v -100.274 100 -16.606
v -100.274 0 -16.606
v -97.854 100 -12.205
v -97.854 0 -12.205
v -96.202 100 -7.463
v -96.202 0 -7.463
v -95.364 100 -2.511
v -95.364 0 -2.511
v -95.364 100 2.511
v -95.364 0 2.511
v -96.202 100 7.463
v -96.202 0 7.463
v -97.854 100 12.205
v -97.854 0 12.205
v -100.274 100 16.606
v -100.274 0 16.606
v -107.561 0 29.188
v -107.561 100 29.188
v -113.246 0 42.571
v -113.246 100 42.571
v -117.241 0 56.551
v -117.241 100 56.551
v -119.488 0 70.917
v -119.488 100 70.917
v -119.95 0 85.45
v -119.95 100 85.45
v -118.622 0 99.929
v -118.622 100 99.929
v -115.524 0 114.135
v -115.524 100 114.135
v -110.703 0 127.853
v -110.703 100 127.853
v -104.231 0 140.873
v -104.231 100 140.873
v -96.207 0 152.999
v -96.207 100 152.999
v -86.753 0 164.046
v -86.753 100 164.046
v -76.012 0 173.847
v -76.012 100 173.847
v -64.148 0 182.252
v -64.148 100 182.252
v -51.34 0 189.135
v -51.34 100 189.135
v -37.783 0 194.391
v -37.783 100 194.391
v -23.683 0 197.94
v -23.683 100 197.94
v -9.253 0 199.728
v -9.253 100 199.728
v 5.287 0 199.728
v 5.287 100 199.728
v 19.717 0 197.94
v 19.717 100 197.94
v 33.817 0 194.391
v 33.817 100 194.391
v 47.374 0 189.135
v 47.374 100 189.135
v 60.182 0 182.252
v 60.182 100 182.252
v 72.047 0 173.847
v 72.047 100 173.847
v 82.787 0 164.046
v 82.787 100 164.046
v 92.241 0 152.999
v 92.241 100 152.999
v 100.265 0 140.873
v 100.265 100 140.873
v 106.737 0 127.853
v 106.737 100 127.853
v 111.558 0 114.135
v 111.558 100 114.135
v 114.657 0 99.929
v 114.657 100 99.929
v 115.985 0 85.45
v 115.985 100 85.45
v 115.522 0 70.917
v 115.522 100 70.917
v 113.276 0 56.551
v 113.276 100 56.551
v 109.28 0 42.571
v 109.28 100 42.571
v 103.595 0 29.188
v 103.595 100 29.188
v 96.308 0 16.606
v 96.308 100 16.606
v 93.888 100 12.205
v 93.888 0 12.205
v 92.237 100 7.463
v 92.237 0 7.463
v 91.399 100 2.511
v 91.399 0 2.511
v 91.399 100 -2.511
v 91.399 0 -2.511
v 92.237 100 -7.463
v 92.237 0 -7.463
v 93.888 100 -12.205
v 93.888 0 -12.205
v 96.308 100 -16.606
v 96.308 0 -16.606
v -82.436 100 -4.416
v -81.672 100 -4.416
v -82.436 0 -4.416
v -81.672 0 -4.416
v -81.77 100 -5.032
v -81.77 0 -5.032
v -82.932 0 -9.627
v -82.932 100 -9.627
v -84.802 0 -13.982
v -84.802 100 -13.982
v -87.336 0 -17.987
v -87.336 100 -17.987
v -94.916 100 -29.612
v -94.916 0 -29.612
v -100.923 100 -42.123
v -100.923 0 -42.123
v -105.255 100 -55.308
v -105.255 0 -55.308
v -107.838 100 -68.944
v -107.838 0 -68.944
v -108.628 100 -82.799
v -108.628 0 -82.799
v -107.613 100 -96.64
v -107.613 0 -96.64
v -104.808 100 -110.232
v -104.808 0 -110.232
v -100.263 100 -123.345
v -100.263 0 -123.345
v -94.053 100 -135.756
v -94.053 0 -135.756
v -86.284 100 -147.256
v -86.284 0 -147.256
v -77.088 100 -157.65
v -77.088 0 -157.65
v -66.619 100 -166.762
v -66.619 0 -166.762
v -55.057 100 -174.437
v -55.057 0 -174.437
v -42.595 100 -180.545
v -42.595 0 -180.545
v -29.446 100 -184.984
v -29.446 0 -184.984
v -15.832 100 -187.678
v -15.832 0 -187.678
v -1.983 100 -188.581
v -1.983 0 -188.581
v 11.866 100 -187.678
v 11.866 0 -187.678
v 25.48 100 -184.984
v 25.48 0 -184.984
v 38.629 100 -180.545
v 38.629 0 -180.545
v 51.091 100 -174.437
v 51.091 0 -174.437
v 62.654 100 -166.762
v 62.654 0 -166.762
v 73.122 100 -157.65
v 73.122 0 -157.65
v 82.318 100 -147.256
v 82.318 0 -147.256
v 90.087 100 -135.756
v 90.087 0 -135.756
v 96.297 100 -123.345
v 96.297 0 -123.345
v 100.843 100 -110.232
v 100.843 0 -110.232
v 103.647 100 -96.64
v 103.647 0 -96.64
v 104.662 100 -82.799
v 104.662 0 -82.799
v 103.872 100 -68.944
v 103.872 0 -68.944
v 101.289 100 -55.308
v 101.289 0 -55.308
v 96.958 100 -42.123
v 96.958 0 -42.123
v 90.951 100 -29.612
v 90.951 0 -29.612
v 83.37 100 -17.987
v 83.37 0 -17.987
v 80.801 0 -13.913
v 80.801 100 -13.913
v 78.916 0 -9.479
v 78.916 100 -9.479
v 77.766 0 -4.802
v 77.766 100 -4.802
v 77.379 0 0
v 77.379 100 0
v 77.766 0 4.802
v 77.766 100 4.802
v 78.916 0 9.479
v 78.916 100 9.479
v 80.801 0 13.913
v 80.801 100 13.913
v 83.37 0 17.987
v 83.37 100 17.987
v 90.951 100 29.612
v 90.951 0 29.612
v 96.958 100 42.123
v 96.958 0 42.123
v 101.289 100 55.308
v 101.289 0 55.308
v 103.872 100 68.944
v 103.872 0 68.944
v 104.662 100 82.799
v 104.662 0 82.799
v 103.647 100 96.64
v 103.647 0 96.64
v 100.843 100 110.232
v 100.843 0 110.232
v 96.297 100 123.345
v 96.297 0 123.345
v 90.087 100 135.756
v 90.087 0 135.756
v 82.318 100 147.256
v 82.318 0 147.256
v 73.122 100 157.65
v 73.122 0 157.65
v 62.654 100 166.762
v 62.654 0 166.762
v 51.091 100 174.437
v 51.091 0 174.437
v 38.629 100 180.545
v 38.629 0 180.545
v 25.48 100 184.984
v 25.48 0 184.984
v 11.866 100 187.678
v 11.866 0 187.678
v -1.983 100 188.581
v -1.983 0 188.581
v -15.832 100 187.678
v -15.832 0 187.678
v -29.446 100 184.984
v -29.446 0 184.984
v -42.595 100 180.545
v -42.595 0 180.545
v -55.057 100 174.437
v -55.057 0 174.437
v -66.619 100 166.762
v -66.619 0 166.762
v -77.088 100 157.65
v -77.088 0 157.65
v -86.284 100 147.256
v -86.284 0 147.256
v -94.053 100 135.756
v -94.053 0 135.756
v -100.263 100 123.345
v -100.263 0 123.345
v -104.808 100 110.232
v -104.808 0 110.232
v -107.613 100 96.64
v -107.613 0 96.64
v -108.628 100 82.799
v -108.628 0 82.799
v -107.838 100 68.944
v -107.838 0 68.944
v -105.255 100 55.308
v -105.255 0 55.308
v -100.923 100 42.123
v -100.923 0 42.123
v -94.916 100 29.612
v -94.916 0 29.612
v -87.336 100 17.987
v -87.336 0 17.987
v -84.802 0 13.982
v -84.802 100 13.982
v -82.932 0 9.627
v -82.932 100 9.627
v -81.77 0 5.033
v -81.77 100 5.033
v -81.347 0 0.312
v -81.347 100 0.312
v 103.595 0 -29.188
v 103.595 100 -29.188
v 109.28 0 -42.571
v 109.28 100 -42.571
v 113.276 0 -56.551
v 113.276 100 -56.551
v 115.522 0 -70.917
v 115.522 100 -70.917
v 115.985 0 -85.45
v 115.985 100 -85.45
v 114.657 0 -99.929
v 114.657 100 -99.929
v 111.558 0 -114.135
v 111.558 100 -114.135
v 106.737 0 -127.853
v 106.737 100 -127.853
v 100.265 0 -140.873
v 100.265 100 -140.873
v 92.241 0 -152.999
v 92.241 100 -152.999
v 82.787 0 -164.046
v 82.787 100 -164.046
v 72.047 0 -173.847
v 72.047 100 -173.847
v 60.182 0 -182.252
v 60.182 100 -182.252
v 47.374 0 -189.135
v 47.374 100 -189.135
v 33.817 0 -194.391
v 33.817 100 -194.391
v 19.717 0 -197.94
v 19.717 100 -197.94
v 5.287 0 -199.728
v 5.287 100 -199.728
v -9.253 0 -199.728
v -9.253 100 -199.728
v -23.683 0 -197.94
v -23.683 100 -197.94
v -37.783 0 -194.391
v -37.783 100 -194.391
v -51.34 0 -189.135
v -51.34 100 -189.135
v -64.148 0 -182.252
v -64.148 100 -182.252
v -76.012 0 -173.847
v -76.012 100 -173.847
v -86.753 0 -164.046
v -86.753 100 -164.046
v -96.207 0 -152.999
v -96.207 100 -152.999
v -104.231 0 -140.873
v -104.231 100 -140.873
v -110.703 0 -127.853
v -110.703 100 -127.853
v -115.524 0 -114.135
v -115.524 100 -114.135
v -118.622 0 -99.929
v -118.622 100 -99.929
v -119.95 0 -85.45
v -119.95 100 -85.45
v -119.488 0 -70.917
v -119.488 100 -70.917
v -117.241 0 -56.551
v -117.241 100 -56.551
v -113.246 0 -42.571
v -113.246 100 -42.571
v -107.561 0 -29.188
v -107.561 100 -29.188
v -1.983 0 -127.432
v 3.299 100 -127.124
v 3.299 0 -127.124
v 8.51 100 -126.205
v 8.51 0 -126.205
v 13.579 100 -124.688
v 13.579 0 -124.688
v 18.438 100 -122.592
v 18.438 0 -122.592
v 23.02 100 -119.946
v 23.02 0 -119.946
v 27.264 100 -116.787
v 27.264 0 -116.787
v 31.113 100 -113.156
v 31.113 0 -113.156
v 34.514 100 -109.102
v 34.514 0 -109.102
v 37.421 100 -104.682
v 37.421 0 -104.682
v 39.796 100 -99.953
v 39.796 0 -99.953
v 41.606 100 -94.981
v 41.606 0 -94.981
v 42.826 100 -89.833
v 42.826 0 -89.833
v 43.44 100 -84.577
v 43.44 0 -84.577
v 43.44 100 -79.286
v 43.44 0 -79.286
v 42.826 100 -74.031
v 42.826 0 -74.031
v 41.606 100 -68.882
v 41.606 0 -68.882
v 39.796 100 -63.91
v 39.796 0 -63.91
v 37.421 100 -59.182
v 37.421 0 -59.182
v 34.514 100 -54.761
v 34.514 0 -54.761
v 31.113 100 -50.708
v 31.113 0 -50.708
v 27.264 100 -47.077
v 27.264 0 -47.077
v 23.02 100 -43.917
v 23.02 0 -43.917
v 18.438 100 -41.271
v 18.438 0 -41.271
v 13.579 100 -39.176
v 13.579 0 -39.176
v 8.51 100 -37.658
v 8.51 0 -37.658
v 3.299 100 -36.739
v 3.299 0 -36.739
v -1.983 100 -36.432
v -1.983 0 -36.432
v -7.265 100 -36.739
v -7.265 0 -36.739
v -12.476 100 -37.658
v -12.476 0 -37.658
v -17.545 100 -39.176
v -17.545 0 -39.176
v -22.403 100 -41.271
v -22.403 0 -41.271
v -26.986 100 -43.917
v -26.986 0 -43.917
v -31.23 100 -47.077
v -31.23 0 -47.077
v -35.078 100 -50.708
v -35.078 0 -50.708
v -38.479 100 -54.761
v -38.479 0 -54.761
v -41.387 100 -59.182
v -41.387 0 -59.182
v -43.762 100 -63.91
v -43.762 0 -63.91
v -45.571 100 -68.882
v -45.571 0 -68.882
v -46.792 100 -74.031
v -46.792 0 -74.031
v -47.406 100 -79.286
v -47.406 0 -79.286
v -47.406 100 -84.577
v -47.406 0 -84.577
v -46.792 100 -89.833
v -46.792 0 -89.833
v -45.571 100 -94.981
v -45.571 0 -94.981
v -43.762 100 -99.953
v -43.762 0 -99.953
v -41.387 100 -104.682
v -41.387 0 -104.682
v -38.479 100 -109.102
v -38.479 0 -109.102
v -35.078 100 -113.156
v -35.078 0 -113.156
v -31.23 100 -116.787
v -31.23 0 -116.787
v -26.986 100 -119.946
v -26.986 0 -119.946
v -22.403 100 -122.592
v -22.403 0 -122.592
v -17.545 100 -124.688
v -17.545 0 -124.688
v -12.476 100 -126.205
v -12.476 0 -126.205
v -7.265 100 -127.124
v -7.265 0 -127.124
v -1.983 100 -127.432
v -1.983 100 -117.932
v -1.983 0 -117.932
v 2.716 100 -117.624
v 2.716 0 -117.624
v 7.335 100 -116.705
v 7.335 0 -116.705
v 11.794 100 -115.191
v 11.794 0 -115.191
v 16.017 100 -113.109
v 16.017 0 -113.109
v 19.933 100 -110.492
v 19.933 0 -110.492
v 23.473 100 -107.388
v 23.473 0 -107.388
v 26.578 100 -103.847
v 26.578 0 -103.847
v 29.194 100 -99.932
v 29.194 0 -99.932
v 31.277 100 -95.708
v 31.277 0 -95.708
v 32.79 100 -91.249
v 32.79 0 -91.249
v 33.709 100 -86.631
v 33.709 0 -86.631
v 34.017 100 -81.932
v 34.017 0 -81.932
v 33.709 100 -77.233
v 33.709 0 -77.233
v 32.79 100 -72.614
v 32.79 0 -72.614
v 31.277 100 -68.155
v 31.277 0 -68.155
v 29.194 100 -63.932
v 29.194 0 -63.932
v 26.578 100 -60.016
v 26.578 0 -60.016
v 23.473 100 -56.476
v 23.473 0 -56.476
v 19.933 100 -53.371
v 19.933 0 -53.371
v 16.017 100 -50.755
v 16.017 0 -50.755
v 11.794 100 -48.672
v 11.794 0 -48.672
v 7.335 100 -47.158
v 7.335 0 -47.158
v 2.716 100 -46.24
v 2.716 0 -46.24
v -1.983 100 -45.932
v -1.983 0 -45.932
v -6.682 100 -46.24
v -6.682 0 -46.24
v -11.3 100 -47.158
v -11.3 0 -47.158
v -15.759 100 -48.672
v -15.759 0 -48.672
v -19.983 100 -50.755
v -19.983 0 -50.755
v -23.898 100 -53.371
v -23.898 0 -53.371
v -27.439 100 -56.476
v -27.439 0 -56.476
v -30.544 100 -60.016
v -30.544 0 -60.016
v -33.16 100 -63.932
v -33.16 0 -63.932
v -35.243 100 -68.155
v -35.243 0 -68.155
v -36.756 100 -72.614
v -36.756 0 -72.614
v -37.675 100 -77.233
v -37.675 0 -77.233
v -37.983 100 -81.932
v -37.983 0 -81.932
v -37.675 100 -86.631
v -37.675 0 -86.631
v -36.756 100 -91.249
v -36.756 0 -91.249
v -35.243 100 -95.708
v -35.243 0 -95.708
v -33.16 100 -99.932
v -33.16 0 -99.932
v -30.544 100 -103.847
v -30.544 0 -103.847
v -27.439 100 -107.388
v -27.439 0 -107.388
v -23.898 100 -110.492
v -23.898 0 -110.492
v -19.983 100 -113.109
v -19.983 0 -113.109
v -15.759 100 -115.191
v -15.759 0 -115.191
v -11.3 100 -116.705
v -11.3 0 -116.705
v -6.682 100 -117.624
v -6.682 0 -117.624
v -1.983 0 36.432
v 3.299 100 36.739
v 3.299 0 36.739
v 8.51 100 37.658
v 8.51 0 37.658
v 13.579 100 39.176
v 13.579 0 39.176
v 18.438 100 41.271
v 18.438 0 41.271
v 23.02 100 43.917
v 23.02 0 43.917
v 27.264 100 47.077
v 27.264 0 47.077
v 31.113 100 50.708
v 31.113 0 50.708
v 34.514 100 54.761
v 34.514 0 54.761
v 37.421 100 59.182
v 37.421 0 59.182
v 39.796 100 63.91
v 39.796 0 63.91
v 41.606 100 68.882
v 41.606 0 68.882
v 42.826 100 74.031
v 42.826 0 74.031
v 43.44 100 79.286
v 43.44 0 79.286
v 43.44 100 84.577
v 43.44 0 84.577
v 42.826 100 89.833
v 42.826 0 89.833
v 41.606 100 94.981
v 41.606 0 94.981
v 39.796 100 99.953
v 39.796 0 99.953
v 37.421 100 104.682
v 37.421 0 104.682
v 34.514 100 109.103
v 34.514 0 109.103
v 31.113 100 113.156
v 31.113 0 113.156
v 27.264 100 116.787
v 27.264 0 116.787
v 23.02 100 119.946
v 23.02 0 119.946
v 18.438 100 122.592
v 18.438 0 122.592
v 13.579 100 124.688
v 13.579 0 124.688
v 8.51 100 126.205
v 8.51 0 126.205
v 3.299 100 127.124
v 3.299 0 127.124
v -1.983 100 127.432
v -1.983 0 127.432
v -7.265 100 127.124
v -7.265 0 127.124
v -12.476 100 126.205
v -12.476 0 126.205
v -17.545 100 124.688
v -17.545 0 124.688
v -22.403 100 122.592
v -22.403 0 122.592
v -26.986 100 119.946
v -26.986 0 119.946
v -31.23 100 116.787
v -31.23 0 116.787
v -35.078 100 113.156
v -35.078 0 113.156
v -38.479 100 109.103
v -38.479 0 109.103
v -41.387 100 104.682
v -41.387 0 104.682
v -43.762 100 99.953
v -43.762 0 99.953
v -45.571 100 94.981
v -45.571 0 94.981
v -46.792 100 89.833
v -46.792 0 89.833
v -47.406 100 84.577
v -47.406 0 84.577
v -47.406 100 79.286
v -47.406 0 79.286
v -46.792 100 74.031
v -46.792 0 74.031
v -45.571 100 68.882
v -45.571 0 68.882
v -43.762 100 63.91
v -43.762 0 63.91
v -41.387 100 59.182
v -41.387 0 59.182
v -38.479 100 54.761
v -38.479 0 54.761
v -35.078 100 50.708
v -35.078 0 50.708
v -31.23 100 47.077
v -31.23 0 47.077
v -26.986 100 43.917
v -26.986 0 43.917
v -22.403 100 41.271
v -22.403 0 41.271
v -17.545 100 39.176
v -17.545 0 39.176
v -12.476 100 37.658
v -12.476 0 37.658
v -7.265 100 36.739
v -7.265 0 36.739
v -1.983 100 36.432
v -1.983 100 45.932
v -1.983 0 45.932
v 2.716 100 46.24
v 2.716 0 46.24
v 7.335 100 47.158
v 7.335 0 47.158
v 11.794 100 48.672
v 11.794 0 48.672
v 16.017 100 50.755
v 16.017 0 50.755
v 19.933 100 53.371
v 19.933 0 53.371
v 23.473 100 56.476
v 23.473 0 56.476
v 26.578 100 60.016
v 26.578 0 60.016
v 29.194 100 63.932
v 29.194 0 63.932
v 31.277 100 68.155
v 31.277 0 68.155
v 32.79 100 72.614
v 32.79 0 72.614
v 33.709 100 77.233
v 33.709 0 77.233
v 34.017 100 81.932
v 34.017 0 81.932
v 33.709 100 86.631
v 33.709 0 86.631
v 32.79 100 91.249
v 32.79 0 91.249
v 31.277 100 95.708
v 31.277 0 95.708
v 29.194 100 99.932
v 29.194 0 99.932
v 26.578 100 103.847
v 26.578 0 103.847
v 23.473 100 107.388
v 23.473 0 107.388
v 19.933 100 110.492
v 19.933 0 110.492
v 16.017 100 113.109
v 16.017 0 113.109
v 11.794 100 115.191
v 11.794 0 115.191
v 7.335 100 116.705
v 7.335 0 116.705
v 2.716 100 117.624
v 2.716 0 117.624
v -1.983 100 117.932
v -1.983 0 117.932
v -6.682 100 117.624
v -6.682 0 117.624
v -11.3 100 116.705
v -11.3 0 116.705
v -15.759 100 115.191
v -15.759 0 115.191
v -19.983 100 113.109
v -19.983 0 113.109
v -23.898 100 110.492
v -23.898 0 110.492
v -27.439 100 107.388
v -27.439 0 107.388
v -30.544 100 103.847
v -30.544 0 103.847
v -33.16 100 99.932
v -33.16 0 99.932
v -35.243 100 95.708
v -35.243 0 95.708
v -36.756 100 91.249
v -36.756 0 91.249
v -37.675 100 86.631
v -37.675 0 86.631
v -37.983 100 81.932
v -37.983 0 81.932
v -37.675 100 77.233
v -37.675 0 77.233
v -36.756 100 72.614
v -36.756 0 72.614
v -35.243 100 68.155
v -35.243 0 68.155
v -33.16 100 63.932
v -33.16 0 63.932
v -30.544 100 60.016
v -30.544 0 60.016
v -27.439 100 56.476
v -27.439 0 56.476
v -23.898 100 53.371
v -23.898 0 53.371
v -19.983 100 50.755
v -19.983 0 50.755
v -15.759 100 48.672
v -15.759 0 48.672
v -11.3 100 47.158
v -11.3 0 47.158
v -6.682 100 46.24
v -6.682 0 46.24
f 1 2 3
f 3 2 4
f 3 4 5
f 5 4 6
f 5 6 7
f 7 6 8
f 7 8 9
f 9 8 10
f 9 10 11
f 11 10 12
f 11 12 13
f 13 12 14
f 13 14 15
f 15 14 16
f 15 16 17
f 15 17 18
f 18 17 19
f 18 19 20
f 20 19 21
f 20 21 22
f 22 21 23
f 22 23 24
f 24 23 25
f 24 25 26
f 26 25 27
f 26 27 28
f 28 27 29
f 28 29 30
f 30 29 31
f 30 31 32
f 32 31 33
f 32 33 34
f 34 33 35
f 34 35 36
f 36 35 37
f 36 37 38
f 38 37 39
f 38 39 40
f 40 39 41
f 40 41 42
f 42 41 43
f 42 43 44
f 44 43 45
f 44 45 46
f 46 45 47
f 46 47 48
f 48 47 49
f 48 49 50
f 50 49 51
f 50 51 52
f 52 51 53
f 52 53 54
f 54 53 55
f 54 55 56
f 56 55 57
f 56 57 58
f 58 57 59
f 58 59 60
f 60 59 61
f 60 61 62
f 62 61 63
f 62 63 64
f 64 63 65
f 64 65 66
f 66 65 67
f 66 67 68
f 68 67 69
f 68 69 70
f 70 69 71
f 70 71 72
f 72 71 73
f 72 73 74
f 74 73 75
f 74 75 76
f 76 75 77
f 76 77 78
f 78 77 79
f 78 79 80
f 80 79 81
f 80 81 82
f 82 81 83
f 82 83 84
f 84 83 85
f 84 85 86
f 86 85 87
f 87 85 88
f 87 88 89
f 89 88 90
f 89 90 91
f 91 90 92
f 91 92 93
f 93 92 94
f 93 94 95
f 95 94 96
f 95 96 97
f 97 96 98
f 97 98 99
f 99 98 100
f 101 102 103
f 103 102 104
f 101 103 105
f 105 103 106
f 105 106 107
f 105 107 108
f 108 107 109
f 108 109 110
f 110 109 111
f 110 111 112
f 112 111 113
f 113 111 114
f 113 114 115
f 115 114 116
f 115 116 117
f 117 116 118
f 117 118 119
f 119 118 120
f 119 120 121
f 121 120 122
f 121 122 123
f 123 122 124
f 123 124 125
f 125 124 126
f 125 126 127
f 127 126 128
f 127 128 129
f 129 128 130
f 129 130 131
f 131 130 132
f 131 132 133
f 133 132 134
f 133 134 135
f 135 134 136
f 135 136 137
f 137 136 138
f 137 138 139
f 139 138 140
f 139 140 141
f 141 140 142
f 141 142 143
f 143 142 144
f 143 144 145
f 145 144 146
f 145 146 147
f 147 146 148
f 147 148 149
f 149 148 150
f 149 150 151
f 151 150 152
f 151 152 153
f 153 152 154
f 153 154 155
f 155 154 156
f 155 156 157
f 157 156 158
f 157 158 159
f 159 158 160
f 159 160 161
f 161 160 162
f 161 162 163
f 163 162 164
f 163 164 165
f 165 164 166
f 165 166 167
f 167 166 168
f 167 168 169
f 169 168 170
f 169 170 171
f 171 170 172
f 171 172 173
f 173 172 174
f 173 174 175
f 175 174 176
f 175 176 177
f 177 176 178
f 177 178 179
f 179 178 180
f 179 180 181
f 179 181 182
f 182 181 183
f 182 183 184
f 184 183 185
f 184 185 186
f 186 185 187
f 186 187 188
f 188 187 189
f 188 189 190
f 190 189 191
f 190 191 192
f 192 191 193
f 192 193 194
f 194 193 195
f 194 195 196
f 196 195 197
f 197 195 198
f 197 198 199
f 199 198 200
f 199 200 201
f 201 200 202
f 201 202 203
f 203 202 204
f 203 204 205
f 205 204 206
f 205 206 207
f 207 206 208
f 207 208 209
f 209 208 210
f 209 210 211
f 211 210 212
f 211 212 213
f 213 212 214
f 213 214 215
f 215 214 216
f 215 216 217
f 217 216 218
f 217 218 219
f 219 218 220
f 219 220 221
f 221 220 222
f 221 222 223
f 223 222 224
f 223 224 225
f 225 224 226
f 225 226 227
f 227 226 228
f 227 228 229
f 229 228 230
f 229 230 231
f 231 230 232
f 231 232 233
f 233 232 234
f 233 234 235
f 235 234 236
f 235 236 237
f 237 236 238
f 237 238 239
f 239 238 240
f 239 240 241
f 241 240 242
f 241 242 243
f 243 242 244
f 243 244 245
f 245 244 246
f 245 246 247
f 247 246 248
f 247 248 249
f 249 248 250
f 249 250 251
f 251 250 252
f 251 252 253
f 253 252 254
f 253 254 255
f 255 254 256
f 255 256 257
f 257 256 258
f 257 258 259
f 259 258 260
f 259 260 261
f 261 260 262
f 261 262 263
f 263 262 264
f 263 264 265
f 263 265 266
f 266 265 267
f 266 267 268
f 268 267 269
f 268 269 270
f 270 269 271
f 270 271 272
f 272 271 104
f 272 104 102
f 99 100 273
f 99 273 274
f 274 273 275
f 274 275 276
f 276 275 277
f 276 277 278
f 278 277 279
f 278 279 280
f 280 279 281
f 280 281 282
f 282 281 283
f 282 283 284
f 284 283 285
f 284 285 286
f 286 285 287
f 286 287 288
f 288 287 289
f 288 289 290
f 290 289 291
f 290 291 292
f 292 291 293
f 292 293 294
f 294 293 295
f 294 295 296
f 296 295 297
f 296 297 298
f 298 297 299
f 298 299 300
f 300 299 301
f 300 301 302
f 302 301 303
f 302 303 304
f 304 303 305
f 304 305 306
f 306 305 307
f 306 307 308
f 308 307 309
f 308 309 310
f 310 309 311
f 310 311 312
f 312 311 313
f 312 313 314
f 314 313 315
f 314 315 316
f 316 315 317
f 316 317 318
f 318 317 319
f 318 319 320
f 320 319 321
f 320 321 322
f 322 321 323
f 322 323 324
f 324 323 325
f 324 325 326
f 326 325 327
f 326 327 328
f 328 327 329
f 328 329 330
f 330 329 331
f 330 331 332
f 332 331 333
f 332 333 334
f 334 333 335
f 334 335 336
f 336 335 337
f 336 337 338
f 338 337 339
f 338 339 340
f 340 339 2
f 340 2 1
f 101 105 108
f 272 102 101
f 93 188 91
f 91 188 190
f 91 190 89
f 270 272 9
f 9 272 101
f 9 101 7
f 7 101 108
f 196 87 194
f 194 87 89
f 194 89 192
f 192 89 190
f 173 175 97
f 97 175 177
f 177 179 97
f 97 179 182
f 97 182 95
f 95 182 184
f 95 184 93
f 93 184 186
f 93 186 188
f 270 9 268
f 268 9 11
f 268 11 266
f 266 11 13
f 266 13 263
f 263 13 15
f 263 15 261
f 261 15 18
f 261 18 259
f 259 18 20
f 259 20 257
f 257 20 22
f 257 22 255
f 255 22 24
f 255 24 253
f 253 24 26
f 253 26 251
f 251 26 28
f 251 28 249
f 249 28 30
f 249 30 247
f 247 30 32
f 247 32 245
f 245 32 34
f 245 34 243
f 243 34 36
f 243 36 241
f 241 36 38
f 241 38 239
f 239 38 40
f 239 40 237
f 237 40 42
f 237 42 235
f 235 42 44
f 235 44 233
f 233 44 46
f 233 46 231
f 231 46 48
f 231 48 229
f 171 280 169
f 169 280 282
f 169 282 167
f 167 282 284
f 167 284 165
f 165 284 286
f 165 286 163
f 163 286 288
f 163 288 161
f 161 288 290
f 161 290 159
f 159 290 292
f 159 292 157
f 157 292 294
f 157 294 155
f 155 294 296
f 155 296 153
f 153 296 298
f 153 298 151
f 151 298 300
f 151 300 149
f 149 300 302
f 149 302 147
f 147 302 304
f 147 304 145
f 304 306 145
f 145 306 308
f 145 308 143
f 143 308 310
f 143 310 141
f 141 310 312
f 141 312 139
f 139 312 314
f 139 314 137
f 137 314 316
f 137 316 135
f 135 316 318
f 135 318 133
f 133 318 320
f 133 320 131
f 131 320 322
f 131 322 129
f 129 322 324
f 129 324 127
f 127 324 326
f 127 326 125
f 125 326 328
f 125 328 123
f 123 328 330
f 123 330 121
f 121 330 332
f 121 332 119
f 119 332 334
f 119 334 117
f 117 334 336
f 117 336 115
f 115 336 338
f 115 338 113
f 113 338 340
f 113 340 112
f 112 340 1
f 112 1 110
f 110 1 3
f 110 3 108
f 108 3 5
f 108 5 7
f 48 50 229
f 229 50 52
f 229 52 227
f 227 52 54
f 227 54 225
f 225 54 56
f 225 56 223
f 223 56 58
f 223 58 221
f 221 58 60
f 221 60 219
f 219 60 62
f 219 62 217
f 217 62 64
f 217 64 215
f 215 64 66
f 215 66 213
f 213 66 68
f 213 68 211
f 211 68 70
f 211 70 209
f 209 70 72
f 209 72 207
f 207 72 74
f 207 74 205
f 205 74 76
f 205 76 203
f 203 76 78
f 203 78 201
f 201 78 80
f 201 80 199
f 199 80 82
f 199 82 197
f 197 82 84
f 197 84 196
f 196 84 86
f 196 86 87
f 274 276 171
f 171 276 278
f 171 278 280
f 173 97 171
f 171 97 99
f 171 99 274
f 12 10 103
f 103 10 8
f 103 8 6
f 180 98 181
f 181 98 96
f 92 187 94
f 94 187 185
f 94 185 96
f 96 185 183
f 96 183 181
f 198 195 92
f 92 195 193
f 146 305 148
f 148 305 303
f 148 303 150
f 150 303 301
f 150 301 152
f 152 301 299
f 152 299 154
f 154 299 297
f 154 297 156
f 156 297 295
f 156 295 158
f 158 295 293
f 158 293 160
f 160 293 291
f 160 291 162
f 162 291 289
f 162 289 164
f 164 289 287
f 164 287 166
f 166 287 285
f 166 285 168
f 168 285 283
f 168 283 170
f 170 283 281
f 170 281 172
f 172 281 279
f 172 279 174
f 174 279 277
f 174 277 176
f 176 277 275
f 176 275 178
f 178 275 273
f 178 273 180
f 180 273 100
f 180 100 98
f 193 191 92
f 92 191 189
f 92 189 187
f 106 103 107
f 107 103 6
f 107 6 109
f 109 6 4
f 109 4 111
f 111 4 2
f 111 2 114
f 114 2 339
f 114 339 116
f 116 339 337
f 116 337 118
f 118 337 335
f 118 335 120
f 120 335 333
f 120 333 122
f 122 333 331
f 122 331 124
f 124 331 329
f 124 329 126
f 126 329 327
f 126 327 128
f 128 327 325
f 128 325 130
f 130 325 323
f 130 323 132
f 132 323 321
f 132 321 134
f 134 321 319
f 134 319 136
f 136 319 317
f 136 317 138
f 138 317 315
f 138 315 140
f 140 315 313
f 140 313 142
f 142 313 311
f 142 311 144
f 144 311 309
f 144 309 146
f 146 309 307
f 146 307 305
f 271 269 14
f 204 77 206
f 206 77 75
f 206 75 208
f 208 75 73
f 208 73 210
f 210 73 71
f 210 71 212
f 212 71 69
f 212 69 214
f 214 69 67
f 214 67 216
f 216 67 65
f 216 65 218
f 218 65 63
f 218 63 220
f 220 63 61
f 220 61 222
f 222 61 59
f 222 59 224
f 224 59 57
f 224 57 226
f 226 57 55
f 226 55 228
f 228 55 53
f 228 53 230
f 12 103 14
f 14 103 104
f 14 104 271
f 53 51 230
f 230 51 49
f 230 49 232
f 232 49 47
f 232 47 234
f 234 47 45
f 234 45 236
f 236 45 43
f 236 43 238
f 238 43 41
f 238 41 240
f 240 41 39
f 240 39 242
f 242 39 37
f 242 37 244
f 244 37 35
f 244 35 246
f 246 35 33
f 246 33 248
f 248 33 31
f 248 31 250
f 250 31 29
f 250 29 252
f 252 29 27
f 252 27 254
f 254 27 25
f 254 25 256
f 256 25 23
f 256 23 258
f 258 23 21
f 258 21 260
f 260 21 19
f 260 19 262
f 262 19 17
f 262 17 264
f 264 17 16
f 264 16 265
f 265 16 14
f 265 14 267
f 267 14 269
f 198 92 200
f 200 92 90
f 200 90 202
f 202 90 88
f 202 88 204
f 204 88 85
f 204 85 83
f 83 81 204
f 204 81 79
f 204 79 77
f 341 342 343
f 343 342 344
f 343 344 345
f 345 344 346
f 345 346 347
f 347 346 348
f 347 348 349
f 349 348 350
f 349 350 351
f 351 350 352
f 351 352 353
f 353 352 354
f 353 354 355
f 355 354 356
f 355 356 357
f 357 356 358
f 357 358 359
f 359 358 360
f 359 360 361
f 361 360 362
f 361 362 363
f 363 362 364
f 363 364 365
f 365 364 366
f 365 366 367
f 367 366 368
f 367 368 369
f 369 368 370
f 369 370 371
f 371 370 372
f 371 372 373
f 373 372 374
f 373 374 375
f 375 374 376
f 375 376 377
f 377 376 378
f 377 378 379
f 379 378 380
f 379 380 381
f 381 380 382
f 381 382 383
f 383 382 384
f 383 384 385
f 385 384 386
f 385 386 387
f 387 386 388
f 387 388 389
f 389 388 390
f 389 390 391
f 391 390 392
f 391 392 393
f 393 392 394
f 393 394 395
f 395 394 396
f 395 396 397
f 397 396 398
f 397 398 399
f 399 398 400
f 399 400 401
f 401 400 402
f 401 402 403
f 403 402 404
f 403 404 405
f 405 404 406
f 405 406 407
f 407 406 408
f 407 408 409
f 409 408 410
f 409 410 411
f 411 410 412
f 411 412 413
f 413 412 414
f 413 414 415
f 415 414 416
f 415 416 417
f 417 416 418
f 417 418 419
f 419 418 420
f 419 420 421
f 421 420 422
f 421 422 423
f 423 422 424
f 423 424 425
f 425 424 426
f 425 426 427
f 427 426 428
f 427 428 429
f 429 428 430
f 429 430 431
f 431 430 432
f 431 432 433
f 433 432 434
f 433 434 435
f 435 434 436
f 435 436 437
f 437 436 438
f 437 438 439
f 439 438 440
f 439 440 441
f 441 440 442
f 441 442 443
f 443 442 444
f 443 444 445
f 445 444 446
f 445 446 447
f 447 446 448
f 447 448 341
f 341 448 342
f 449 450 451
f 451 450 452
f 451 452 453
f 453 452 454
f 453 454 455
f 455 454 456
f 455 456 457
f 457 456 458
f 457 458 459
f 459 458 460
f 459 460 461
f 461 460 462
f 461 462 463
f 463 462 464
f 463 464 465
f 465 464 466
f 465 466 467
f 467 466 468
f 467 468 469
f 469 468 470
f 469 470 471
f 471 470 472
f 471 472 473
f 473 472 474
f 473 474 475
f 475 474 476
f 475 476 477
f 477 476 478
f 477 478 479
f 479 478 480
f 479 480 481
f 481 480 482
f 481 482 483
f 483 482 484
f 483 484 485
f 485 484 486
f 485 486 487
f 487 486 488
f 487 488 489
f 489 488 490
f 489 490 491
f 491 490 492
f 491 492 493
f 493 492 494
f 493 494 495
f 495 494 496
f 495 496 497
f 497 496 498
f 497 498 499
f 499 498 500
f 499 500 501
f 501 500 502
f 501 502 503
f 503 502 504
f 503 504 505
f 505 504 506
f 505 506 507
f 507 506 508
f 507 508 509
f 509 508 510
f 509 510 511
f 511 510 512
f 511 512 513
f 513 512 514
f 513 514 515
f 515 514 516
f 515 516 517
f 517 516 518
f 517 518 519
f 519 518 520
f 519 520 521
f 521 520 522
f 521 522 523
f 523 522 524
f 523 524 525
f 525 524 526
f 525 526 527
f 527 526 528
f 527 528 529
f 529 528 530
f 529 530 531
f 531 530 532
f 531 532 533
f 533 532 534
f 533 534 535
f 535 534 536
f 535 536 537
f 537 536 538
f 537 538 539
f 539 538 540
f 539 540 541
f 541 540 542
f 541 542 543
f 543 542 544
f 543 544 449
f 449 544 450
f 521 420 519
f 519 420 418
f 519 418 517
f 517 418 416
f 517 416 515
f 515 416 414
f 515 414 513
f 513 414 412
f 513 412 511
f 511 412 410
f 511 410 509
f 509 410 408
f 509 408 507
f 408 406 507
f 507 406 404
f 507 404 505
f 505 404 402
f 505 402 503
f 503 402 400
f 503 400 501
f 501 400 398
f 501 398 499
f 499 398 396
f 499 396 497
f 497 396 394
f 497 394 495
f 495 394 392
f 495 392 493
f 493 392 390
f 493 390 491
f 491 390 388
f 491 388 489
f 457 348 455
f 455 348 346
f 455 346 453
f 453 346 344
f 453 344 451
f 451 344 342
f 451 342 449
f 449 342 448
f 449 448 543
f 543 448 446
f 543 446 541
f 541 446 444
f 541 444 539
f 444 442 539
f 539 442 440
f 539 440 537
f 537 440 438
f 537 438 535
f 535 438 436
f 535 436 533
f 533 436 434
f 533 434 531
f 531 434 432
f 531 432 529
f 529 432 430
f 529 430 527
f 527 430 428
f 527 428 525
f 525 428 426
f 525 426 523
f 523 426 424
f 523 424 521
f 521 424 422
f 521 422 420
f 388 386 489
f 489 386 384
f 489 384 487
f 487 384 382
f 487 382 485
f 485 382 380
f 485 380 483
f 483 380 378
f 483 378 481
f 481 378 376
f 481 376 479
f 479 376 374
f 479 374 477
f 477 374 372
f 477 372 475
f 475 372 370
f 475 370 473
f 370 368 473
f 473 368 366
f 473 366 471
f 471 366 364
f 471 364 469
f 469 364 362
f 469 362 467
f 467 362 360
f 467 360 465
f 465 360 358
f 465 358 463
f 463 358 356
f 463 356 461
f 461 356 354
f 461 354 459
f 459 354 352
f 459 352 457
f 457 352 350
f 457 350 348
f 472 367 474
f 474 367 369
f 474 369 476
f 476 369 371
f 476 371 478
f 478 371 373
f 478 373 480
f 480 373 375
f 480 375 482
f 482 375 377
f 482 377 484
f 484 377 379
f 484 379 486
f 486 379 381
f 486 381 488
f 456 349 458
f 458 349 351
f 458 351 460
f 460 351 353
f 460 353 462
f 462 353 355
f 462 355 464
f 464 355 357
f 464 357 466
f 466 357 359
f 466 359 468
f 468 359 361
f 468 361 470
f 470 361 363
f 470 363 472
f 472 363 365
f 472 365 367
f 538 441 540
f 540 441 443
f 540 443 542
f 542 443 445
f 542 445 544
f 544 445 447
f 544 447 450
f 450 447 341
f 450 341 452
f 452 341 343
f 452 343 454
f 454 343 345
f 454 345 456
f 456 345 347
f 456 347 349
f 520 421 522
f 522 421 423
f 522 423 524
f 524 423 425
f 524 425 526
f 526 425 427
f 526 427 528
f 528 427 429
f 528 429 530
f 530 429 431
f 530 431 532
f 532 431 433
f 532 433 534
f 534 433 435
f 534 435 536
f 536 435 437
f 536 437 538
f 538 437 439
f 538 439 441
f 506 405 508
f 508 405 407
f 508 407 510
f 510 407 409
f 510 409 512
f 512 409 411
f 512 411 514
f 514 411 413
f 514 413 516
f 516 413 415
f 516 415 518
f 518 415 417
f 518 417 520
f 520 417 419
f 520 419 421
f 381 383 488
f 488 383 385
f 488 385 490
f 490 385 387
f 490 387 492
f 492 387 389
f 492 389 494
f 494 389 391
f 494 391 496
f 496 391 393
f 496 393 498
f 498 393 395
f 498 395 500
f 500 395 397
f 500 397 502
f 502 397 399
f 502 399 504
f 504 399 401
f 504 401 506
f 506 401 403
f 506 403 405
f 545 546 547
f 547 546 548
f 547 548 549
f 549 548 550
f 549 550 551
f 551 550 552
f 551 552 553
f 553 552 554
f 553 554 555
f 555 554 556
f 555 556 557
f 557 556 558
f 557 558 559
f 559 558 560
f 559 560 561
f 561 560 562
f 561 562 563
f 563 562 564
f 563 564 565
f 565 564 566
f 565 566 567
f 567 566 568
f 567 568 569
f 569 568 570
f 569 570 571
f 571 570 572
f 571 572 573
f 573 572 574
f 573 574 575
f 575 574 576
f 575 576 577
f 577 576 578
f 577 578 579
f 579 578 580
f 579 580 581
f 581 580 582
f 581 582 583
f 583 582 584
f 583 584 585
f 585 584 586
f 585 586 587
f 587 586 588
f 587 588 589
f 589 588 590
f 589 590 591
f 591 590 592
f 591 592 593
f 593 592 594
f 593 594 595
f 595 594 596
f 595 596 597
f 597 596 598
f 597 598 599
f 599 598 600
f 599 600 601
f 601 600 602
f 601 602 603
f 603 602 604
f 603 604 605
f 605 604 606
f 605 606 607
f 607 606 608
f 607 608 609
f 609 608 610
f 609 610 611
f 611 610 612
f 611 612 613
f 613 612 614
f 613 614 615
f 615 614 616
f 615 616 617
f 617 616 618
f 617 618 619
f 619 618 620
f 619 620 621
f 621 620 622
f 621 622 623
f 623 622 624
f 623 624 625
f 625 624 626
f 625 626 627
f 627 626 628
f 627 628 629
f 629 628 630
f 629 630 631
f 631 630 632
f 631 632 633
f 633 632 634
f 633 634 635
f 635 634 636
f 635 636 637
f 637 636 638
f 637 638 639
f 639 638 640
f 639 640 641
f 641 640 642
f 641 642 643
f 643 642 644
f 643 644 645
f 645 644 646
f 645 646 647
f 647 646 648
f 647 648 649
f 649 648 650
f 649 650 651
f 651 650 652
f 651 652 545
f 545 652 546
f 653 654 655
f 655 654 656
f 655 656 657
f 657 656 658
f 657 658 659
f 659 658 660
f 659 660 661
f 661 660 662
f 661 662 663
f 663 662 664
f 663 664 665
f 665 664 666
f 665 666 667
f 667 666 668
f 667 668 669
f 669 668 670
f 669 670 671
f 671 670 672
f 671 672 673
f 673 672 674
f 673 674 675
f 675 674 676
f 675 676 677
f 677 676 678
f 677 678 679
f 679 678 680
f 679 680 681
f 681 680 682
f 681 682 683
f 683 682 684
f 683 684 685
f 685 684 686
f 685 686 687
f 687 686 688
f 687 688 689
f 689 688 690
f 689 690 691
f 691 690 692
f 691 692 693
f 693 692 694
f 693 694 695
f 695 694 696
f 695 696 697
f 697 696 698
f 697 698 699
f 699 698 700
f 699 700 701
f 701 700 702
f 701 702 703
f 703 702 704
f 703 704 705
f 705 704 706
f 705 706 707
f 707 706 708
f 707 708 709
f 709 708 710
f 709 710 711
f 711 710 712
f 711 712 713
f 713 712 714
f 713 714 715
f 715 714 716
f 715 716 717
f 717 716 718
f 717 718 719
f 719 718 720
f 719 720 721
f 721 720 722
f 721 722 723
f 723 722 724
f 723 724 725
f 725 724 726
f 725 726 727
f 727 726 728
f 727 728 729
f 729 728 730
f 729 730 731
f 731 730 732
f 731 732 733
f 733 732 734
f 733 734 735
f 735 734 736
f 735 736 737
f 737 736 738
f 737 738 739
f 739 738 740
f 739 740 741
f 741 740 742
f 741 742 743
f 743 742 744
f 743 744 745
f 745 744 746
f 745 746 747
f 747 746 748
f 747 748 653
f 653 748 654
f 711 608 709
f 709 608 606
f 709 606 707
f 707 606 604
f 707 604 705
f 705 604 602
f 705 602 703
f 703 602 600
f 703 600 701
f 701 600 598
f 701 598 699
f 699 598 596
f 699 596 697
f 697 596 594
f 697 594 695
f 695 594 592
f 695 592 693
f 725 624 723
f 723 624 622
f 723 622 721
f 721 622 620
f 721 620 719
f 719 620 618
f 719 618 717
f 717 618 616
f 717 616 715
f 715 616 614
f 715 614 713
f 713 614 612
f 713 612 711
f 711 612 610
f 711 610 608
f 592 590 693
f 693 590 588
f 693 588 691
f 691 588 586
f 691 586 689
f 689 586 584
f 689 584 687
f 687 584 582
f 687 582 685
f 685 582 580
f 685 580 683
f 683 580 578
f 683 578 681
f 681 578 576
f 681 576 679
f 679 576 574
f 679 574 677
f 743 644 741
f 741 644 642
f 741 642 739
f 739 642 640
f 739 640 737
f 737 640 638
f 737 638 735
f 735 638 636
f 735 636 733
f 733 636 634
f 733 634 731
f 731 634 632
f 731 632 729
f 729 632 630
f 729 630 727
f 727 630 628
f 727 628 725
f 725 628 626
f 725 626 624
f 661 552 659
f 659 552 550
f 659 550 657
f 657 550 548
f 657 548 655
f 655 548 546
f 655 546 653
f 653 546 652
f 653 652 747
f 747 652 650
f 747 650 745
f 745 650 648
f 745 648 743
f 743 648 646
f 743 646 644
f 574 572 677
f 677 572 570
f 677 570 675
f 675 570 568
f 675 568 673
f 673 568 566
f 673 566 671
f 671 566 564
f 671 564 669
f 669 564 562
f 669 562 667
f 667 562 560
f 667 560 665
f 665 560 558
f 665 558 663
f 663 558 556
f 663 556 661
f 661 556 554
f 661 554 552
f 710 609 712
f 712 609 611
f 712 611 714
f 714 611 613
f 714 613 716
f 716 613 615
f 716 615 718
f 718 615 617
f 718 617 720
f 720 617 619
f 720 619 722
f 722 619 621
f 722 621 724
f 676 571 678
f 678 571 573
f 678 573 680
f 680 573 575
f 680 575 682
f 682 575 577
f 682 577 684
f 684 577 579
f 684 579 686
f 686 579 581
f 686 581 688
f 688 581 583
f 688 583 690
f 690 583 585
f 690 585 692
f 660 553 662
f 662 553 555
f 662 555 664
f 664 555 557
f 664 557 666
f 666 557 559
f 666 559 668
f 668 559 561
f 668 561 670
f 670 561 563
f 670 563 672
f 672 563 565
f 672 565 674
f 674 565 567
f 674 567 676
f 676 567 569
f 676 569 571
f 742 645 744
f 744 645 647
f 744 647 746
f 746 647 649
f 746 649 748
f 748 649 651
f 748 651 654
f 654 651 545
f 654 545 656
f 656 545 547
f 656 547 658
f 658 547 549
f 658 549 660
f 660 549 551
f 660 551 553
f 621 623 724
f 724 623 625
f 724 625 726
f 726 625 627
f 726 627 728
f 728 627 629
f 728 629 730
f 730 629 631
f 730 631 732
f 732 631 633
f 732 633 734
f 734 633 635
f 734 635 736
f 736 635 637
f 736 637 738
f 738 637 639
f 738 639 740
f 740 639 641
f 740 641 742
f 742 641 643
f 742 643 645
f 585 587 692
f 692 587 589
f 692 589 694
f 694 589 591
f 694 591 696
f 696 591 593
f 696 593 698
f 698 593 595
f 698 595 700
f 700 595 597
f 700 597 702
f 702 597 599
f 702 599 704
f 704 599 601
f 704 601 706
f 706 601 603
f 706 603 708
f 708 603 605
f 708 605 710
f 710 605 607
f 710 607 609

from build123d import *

# Parameters (mm, degrees)
BOSS_EXTRUDE1_DEPTH   = 100
SKETCH8_R             = 45.5
SKETCH8_R_2           = 36
BOSS_EXTRUDE1_2_DEPTH = 100
BOSS_EXTRUDE1_3_DEPTH = 100


with BuildPart() as part:
    # Sketch8 → Boss-Extrude1 (new body)
    with BuildSketch(Plane(origin=(0, 0, 0), x_dir=(1, 0, 0), z_dir=(0, 1, 0))):
        with BuildLine():
            ThreePointArc((-100.274105053, 16.605563859), (-95.259205592, 0), (-100.274105053, -16.605563859))
            ThreePointArc((-100.274105053, -16.605563859), (-1.982836217, -199.951634424), (96.308432618, -16.605563859))
            ThreePointArc((96.308432618, -16.605563859), (91.293533157, 0), (96.308432618, 16.605563859))
            ThreePointArc((96.308432618, 16.605563859), (-1.982836217, 199.951634424), (-100.274105053, 16.605563859))
        make_face()
        with BuildLine():
            ThreePointArc((83.369924338, 17.98736622), (77.379394479, 0), (83.369924338, -17.98736622))
            ThreePointArc((83.369924338, -17.98736622), (-1.982836217, -188.580642728), (-87.335596772, -17.98736622))
            ThreePointArc((-87.335596772, -17.98736622), (-82.260099756, -7.352869197), (-81.671870152, 4.416038264))
            Line((-81.671870152, 4.416038264), (-82.436192616, 4.416038264))
            ThreePointArc((-82.436192616, 4.416038264), (-82.103728119, 4.72461595), (-81.770080085, 5.031913559))
            ThreePointArc((-81.770080085, 5.031913559), (-83.780879177, 11.841264898), (-87.335596772, 17.98736622))
            ThreePointArc((-87.335596772, 17.98736622), (-1.982836217, 188.580642728), (83.369924338, 17.98736622))
        make_face(mode=Mode.SUBTRACT)
    extrude(amount=BOSS_EXTRUDE1_DEPTH)


with BuildPart() as body_2:
    # Sketch8 → Boss-Extrude1 2 (new body)
    with BuildSketch(Plane(origin=(0, 0, 0), x_dir=(1, 0, 0), z_dir=(0, 1, 0))):
        with Locations(Location((-1.982836217, 81.931774528, 0), (0, 0, 270))):
            Circle(SKETCH8_R)
        with Locations(Location((-1.982836217, 81.931774528, 0), (0, 0, 270))):
            Circle(SKETCH8_R_2, mode=Mode.SUBTRACT)
    extrude(amount=BOSS_EXTRUDE1_2_DEPTH)


with BuildPart() as body_3:
    # Sketch8 → Boss-Extrude1 3 (new body)
    with BuildSketch(Plane(origin=(0, 0, 0), x_dir=(1, 0, 0), z_dir=(0, 1, 0))):
        with Locations(Location((-1.982836217, -81.931774528, 0), (0, 0, 270))):
            Circle(SKETCH8_R)
        with Locations(Location((-1.982836217, -81.931774528, 0), (0, 0, 270))):
            Circle(SKETCH8_R_2, mode=Mode.SUBTRACT)
    extrude(amount=BOSS_EXTRUDE1_3_DEPTH)


solid = Compound([part.part, body_2.part, body_3.part])
